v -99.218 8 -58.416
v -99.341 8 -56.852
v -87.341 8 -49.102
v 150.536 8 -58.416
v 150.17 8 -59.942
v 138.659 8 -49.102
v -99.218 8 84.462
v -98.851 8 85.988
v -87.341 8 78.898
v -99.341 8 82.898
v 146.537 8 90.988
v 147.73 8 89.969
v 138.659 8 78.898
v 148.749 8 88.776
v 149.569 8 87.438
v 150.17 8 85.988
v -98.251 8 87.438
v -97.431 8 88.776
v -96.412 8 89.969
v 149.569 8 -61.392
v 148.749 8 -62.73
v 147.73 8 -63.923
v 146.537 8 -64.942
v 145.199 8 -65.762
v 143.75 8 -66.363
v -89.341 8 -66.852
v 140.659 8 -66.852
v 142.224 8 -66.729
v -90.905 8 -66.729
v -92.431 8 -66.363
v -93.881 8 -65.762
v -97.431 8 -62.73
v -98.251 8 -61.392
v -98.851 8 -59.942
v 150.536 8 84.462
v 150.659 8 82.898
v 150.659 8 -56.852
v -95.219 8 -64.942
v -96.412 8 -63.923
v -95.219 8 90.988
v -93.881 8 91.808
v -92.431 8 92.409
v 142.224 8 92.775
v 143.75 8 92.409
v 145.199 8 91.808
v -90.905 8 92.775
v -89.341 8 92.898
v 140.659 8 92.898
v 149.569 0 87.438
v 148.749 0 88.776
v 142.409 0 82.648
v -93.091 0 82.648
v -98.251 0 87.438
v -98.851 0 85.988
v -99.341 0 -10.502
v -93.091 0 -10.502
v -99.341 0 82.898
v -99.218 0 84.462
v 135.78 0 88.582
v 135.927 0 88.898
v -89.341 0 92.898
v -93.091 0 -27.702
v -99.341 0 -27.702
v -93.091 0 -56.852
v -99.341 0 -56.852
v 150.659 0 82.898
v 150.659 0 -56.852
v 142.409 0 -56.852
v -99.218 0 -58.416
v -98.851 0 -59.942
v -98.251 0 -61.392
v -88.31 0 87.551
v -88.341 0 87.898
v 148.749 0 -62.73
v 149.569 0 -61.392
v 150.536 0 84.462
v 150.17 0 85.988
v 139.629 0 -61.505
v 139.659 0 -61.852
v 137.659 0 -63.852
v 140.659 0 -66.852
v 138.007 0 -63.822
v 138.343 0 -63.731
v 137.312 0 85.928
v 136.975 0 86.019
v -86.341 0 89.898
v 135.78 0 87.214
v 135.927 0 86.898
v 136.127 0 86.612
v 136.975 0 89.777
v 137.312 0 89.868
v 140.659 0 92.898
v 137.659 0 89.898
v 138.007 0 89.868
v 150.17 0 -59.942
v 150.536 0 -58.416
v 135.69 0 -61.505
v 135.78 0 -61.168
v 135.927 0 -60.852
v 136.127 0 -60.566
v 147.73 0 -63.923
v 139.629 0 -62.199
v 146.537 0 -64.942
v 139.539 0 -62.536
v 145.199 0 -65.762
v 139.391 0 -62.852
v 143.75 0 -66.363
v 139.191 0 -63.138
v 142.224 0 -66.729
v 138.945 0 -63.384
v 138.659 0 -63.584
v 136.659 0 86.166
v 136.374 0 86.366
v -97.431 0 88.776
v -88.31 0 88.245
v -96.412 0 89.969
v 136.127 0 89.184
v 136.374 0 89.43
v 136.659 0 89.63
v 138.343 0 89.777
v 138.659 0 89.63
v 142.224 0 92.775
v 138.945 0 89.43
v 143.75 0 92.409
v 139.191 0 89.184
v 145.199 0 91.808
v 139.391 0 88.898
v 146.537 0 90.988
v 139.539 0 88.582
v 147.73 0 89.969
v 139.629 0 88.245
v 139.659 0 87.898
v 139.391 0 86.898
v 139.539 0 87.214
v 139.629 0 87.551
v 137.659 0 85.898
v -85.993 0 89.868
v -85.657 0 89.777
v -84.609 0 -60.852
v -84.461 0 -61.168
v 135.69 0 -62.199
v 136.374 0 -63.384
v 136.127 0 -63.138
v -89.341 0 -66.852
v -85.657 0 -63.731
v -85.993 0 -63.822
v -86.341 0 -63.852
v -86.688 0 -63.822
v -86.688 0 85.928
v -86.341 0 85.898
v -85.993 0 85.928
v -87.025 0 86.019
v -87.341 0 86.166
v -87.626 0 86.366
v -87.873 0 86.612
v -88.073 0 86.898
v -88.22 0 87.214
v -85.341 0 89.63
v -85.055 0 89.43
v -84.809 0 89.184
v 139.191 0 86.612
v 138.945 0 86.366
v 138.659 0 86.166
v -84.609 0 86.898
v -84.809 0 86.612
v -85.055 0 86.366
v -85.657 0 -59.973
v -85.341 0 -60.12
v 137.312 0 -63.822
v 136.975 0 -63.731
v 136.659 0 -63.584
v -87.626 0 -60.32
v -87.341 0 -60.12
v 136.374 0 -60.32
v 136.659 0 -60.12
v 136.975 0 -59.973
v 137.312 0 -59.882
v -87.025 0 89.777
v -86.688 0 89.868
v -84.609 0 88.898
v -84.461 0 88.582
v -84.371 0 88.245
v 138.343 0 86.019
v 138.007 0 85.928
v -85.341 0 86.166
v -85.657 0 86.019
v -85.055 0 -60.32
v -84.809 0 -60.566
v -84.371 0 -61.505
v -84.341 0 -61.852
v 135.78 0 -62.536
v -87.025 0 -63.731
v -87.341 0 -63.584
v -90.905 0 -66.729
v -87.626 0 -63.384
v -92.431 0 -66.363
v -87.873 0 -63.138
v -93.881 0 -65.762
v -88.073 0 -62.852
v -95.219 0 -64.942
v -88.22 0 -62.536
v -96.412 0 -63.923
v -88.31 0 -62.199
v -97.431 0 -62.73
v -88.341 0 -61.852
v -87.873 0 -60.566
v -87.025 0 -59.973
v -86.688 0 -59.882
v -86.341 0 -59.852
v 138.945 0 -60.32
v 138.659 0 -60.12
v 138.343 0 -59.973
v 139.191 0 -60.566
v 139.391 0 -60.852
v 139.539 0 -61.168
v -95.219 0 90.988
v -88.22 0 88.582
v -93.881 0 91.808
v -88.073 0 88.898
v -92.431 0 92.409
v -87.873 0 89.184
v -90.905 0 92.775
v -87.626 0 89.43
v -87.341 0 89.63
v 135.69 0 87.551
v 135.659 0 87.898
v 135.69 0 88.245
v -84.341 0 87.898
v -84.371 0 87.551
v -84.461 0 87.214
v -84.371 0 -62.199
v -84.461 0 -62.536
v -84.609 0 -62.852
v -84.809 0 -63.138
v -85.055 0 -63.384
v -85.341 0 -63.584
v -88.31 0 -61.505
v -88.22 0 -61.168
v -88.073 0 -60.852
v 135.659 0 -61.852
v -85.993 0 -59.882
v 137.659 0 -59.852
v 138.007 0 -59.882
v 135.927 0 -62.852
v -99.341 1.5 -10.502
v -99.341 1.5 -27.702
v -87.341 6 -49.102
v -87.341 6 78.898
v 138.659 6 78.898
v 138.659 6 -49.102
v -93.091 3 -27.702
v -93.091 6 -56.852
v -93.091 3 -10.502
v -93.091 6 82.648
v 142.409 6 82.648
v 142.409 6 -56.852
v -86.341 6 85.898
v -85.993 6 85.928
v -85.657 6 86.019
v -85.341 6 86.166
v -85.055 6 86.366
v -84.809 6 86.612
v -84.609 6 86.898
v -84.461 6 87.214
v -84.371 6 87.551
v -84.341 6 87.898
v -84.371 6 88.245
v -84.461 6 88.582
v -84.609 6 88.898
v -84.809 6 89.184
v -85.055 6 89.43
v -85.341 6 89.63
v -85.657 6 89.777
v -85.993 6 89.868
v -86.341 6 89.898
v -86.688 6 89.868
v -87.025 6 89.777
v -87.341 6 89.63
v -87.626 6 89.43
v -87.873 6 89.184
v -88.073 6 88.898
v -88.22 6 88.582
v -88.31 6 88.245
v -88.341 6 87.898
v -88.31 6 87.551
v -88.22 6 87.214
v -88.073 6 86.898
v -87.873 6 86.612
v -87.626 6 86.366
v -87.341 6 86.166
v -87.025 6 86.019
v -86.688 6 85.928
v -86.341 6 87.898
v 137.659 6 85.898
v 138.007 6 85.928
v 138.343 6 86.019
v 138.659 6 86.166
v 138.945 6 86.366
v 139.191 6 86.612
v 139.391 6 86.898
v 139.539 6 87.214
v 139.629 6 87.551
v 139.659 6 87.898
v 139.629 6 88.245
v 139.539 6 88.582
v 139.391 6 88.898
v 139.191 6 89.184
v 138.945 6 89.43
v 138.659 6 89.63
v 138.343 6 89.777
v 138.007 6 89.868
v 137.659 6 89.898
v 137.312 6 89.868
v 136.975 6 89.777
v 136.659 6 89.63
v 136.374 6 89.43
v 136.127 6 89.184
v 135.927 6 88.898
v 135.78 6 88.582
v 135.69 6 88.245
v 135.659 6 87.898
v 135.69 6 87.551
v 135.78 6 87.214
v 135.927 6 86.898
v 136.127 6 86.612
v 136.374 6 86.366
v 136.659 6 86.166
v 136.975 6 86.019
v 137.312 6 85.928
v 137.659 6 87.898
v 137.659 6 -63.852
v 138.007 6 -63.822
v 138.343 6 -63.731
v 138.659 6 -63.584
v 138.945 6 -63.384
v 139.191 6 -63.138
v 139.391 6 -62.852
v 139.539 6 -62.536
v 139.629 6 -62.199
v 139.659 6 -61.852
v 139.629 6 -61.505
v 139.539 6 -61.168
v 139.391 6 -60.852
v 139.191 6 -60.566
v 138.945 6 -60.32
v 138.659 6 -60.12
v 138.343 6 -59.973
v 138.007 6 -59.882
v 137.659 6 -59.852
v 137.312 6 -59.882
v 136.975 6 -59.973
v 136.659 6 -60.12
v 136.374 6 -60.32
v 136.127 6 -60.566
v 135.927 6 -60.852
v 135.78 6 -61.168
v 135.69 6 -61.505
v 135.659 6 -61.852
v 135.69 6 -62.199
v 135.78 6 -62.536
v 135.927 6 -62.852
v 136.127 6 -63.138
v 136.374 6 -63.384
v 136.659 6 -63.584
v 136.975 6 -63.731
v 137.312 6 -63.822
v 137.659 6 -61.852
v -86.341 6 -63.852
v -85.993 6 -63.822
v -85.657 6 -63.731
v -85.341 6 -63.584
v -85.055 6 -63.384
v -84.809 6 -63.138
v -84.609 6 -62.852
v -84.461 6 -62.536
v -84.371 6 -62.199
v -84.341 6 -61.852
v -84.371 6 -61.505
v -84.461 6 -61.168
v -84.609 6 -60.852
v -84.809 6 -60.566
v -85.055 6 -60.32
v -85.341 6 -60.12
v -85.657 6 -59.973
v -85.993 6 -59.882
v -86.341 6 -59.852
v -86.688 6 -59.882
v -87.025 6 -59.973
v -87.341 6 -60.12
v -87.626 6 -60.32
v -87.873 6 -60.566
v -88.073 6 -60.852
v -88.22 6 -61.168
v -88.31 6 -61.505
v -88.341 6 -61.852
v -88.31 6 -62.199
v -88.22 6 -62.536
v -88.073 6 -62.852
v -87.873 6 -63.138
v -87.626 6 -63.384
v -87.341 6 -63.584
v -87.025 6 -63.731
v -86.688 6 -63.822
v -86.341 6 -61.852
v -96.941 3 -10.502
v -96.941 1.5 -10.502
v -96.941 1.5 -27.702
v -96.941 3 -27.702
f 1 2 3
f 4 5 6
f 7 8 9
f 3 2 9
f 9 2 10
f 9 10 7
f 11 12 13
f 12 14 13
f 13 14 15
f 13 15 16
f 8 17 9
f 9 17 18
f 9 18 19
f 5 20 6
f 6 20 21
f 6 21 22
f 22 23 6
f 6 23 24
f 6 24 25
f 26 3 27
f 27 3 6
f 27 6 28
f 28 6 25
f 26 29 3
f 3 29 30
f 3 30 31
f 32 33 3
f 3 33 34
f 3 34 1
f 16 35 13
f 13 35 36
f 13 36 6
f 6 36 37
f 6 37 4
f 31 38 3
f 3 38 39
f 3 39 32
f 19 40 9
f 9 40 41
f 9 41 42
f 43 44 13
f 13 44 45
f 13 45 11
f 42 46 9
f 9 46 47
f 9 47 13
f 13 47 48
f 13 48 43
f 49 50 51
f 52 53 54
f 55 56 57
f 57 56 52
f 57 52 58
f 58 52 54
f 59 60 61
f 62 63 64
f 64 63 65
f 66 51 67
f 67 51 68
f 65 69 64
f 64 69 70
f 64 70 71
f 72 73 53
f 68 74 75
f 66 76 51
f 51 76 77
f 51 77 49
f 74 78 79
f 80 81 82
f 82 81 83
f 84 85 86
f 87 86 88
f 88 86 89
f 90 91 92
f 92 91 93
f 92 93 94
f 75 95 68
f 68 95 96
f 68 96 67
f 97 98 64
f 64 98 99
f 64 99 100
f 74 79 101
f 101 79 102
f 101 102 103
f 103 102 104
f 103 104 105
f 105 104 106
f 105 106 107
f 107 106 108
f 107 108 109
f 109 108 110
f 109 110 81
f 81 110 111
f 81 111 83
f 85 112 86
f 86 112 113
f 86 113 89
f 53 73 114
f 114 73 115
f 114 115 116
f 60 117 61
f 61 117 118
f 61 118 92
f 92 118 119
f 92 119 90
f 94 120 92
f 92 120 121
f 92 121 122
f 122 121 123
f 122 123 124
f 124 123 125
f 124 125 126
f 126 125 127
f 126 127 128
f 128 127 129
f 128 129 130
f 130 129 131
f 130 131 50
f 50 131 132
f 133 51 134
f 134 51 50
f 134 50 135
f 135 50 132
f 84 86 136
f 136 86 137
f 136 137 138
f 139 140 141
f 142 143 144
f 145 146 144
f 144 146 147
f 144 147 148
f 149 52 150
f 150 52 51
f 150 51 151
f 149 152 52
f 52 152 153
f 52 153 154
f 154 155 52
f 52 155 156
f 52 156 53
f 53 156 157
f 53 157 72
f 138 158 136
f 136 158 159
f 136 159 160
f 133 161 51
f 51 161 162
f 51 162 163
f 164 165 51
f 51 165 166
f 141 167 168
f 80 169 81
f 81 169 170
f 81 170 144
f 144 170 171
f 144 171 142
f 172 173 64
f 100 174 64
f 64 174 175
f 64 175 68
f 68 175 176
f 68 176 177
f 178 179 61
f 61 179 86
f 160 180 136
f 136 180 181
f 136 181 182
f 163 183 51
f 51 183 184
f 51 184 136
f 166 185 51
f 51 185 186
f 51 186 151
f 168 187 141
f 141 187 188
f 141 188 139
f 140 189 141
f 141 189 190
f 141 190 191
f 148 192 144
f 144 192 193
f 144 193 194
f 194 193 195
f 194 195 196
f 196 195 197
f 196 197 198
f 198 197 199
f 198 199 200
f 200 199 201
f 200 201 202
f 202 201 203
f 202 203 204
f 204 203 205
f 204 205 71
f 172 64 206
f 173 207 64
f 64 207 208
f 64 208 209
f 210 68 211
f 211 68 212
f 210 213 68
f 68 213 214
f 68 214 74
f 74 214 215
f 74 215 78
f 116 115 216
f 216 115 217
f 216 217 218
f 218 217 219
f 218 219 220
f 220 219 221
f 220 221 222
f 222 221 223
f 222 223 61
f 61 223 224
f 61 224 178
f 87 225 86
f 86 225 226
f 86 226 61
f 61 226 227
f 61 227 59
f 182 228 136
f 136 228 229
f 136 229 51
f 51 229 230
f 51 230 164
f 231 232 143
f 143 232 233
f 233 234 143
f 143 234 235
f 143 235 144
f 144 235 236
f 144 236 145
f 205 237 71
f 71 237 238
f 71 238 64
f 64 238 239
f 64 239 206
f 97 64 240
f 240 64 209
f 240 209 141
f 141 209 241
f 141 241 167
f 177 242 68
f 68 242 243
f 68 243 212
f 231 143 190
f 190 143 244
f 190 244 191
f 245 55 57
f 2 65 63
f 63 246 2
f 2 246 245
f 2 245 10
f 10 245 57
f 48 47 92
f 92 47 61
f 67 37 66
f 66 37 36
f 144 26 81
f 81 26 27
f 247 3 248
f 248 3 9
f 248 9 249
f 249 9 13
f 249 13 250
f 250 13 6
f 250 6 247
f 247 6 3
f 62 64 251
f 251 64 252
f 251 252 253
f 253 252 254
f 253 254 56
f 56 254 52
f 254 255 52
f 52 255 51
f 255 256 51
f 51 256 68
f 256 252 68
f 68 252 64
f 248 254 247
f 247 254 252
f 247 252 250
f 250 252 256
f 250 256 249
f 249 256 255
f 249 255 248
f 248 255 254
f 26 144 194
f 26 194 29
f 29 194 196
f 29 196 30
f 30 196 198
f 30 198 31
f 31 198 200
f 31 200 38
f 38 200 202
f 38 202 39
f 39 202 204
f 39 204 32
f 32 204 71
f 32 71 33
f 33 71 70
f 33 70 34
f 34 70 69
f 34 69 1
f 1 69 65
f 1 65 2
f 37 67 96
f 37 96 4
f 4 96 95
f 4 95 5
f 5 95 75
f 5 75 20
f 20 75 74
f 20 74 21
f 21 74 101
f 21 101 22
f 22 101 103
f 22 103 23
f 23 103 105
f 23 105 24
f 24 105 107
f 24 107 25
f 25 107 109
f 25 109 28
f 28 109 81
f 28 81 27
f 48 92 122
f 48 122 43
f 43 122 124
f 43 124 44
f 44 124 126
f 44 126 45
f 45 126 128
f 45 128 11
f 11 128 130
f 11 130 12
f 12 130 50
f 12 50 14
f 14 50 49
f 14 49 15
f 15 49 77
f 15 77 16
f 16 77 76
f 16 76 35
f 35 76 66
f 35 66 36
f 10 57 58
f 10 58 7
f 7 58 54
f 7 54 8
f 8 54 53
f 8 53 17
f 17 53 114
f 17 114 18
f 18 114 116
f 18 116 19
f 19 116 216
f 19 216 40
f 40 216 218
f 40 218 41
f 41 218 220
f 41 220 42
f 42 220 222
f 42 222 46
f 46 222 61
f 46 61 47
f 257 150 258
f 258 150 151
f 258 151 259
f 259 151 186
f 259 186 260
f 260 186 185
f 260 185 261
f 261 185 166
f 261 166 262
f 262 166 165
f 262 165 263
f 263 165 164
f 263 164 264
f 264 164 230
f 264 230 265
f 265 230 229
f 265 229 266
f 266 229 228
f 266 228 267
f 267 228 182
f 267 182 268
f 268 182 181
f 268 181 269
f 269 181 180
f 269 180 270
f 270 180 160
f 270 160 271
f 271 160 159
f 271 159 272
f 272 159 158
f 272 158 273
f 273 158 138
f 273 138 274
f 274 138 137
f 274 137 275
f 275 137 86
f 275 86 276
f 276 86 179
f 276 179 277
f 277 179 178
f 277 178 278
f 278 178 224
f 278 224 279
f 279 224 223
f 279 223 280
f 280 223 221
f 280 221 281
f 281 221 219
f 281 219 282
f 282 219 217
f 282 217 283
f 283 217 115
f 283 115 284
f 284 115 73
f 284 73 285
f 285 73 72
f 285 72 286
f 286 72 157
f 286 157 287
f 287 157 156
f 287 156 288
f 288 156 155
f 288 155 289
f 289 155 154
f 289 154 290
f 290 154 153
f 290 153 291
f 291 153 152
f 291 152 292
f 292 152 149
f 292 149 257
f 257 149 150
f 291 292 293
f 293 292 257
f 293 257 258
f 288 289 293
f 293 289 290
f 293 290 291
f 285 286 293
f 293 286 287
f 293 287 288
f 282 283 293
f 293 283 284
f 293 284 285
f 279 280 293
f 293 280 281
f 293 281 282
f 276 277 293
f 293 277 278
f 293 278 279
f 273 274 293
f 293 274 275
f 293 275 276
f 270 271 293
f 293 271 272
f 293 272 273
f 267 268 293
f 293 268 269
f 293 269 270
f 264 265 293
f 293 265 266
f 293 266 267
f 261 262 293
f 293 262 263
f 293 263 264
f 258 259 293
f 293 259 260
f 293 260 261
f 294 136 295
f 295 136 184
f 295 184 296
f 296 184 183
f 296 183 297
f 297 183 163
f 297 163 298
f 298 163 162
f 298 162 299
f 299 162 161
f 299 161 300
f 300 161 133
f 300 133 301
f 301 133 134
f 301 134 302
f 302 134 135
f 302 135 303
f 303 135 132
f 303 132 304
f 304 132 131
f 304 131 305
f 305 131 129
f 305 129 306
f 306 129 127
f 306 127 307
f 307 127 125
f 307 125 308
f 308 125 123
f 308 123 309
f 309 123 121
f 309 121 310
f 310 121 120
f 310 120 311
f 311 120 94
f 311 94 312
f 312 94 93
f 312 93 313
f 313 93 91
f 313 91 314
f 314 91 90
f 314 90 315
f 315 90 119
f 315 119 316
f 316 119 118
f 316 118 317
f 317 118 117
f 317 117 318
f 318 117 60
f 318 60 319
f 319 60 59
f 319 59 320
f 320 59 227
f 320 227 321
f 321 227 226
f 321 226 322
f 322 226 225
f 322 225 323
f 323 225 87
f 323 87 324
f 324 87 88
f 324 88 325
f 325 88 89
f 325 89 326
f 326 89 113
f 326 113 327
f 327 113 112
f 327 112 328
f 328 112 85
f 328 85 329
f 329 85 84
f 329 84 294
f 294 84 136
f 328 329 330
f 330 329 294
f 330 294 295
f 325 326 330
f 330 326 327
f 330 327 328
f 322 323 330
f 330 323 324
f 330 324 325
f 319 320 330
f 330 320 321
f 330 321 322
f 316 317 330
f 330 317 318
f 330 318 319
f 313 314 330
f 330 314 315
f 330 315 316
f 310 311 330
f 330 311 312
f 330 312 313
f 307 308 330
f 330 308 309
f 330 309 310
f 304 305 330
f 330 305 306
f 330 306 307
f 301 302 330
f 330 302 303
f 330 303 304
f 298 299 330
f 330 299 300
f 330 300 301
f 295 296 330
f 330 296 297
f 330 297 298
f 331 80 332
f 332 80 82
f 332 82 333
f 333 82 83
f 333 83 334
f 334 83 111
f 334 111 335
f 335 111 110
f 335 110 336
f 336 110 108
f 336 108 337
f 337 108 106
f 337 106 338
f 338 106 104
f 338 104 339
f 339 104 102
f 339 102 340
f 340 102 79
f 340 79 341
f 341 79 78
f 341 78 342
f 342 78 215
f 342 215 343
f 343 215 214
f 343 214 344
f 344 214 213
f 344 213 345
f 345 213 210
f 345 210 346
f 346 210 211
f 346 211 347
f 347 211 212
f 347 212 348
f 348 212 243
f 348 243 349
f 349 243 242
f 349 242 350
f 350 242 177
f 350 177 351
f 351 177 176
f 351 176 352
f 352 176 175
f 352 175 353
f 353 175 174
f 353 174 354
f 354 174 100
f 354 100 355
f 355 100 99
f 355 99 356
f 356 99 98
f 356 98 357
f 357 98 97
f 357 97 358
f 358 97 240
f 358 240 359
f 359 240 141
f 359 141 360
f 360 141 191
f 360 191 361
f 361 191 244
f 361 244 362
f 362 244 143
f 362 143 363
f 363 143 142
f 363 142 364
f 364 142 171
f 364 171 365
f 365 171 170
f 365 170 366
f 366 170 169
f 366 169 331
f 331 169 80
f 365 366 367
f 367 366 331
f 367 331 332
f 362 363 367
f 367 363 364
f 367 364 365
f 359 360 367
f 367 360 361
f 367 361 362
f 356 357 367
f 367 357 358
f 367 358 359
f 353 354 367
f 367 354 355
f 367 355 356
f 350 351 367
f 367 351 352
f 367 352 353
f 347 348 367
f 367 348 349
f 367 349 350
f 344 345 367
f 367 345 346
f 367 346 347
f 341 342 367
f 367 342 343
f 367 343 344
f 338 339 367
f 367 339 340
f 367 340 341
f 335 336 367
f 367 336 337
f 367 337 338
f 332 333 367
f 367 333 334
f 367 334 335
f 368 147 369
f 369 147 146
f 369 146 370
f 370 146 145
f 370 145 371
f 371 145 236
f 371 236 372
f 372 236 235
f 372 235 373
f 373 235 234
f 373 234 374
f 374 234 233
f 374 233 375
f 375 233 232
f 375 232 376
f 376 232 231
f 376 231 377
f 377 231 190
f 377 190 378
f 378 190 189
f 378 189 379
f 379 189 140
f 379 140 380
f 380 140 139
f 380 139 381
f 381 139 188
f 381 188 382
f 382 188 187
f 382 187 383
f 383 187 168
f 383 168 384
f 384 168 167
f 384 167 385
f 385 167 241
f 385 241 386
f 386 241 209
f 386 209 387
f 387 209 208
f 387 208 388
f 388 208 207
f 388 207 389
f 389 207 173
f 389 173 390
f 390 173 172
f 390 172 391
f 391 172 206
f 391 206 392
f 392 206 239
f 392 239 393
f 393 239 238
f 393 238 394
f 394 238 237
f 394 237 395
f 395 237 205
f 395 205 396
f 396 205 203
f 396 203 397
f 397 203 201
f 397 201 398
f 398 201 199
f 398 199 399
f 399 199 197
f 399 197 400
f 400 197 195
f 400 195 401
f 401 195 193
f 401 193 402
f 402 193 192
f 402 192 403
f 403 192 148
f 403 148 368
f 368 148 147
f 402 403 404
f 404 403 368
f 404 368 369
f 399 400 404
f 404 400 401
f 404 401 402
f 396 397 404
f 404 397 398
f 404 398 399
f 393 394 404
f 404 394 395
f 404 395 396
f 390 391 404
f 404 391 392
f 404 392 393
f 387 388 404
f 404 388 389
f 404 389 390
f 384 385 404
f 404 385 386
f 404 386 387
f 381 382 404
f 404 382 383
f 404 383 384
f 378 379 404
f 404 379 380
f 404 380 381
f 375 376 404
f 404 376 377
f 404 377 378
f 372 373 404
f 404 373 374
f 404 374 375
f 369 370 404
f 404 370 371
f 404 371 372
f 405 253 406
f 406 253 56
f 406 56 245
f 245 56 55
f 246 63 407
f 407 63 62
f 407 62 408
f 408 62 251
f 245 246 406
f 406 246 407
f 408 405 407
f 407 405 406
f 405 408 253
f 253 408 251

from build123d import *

# Parameters (mm, degrees)
SKETCH_1_W          = 250
SKETCH_1_H          = 156
SKETCH_1_W_2        = 226
SKETCH_1_H_2        = 128
EXTRUDE_1_DEPTH     = 8
SKETCH_2_W          = 235.5
SKETCH_2_H          = 139.5
CUT_EXTRUDE_3_DEPTH = 6
SKETCH_11_W         = 250
SKETCH_11_H         = 8
EXTRUDE_3_DEPTH     = 3.75
CUT_EXTRUDE_4_DEPTH = 10
SKETCH_13_R         = 2
CUT_EXTRUDE_5_DEPTH = 6
SKETCH_14_W         = 6.25
SKETCH_14_H         = 17.2
CUT_EXTRUDE_6_DEPTH = 1.5
SKETCH_16_W         = 3.85
SKETCH_16_H         = 17.2
CUT_EXTRUDE_8_DEPTH = 1.5


with BuildPart() as part:
    # 草图1 → 凸台-拉伸1 (new body)
    with BuildSketch(Plane(origin=(0, 0, 0), x_dir=(1, 0, 0), z_dir=(0, 1, 0))):
        with Locations((25.659327926, -14.898030127)):
            Rectangle(SKETCH_1_W, SKETCH_1_H)
        with Locations((25.659327926, -14.898030127)):
            Rectangle(SKETCH_1_W_2, SKETCH_1_H_2, mode=Mode.SUBTRACT)
    extrude(amount=EXTRUDE_1_DEPTH)

    # 草图2 → 切除-拉伸3 (cut)
    with BuildSketch(Plane.XZ):
        with Locations((24.659327926, 12.898030127)):
            Rectangle(SKETCH_2_W, SKETCH_2_H)
    extrude(amount=-CUT_EXTRUDE_3_DEPTH, mode=Mode.SUBTRACT)

    # 草图11 → 凸台-拉伸3 (add)
    with BuildSketch(Plane(origin=(0, 0, -63.101969873), x_dir=(-1, 0, 0), z_dir=(0, 0, -1))):
        with Locations((-25.659327926, 4)):
            Rectangle(SKETCH_11_W, SKETCH_11_H)
    extrude(amount=EXTRUDE_3_DEPTH)

    # 草图12 → 切除-拉伸4 (cut)
    with BuildSketch(Plane.XZ):
        with BuildLine():
            Line((-89.340672074, 92.898030127), (-99.340672074, 92.898030127))
            Line((-99.340672074, 92.898030127), (-99.340672074, 82.898030127))
            ThreePointArc((-99.340672074, 82.898030127), (-96.411739886, 89.969097939), (-89.340672074, 92.898030127))
        make_face()
        with BuildLine():
            Line((-99.340672074, -56.851969873), (-99.340672074, -66.851969873))
            Line((-99.340672074, -66.851969873), (-89.340672074, -66.851969873))
            ThreePointArc((-89.340672074, -66.851969873), (-96.411739886, -63.923037684), (-99.340672074, -56.851969873))
        make_face()
        with BuildLine():
            Line((140.659327926, -66.851969873), (150.659327926, -66.851969873))
            Line((150.659327926, -66.851969873), (150.659327926, -56.851969873))
            ThreePointArc((150.659327926, -56.851969873), (147.730395738, -63.923037684), (140.659327926, -66.851969873))
        make_face()
        with BuildLine():
            Line((150.659327926, 82.898030127), (150.659327926, 92.898030127))
            Line((150.659327926, 92.898030127), (140.659327926, 92.898030127))
            ThreePointArc((140.659327926, 92.898030127), (147.730395738, 89.969097939), (150.659327926, 82.898030127))
        make_face()
    extrude(amount=-CUT_EXTRUDE_4_DEPTH, mode=Mode.SUBTRACT)

    # 草图13 → 切除-拉伸5 (cut)
    with BuildSketch(Plane.XZ):
        with Locations(Location((-86.340672074, 87.898030127, 0), (0, 0, 270))):
            Circle(SKETCH_13_R)
        with Locations(Location((137.659327926, 87.898030127, 0), (0, 0, 270))):
            Circle(SKETCH_13_R)
        with Locations(Location((137.659327926, -61.851969873, 0), (0, 0, 270))):
            Circle(SKETCH_13_R)
        with Locations(Location((-86.340672074, -61.851969873, 0), (0, 0, 270))):
            Circle(SKETCH_13_R)
    extrude(amount=-CUT_EXTRUDE_5_DEPTH, mode=Mode.SUBTRACT)

    # 草图14 → 切除-拉伸6 (cut)
    with BuildSketch(Plane.XZ):
        with Locations((-96.215672074, -19.101969873)):
            Rectangle(SKETCH_14_W, SKETCH_14_H)
    extrude(amount=-CUT_EXTRUDE_6_DEPTH, mode=Mode.SUBTRACT)

    # 草图16 → 切除-拉伸8 (cut)
    with BuildSketch(Plane.XZ.offset(-1.5)):
        with Locations((-95.015672074, -19.101969873)):
            Rectangle(SKETCH_16_W, SKETCH_16_H)
    extrude(amount=-CUT_EXTRUDE_8_DEPTH, mode=Mode.SUBTRACT)


solid = part.part
